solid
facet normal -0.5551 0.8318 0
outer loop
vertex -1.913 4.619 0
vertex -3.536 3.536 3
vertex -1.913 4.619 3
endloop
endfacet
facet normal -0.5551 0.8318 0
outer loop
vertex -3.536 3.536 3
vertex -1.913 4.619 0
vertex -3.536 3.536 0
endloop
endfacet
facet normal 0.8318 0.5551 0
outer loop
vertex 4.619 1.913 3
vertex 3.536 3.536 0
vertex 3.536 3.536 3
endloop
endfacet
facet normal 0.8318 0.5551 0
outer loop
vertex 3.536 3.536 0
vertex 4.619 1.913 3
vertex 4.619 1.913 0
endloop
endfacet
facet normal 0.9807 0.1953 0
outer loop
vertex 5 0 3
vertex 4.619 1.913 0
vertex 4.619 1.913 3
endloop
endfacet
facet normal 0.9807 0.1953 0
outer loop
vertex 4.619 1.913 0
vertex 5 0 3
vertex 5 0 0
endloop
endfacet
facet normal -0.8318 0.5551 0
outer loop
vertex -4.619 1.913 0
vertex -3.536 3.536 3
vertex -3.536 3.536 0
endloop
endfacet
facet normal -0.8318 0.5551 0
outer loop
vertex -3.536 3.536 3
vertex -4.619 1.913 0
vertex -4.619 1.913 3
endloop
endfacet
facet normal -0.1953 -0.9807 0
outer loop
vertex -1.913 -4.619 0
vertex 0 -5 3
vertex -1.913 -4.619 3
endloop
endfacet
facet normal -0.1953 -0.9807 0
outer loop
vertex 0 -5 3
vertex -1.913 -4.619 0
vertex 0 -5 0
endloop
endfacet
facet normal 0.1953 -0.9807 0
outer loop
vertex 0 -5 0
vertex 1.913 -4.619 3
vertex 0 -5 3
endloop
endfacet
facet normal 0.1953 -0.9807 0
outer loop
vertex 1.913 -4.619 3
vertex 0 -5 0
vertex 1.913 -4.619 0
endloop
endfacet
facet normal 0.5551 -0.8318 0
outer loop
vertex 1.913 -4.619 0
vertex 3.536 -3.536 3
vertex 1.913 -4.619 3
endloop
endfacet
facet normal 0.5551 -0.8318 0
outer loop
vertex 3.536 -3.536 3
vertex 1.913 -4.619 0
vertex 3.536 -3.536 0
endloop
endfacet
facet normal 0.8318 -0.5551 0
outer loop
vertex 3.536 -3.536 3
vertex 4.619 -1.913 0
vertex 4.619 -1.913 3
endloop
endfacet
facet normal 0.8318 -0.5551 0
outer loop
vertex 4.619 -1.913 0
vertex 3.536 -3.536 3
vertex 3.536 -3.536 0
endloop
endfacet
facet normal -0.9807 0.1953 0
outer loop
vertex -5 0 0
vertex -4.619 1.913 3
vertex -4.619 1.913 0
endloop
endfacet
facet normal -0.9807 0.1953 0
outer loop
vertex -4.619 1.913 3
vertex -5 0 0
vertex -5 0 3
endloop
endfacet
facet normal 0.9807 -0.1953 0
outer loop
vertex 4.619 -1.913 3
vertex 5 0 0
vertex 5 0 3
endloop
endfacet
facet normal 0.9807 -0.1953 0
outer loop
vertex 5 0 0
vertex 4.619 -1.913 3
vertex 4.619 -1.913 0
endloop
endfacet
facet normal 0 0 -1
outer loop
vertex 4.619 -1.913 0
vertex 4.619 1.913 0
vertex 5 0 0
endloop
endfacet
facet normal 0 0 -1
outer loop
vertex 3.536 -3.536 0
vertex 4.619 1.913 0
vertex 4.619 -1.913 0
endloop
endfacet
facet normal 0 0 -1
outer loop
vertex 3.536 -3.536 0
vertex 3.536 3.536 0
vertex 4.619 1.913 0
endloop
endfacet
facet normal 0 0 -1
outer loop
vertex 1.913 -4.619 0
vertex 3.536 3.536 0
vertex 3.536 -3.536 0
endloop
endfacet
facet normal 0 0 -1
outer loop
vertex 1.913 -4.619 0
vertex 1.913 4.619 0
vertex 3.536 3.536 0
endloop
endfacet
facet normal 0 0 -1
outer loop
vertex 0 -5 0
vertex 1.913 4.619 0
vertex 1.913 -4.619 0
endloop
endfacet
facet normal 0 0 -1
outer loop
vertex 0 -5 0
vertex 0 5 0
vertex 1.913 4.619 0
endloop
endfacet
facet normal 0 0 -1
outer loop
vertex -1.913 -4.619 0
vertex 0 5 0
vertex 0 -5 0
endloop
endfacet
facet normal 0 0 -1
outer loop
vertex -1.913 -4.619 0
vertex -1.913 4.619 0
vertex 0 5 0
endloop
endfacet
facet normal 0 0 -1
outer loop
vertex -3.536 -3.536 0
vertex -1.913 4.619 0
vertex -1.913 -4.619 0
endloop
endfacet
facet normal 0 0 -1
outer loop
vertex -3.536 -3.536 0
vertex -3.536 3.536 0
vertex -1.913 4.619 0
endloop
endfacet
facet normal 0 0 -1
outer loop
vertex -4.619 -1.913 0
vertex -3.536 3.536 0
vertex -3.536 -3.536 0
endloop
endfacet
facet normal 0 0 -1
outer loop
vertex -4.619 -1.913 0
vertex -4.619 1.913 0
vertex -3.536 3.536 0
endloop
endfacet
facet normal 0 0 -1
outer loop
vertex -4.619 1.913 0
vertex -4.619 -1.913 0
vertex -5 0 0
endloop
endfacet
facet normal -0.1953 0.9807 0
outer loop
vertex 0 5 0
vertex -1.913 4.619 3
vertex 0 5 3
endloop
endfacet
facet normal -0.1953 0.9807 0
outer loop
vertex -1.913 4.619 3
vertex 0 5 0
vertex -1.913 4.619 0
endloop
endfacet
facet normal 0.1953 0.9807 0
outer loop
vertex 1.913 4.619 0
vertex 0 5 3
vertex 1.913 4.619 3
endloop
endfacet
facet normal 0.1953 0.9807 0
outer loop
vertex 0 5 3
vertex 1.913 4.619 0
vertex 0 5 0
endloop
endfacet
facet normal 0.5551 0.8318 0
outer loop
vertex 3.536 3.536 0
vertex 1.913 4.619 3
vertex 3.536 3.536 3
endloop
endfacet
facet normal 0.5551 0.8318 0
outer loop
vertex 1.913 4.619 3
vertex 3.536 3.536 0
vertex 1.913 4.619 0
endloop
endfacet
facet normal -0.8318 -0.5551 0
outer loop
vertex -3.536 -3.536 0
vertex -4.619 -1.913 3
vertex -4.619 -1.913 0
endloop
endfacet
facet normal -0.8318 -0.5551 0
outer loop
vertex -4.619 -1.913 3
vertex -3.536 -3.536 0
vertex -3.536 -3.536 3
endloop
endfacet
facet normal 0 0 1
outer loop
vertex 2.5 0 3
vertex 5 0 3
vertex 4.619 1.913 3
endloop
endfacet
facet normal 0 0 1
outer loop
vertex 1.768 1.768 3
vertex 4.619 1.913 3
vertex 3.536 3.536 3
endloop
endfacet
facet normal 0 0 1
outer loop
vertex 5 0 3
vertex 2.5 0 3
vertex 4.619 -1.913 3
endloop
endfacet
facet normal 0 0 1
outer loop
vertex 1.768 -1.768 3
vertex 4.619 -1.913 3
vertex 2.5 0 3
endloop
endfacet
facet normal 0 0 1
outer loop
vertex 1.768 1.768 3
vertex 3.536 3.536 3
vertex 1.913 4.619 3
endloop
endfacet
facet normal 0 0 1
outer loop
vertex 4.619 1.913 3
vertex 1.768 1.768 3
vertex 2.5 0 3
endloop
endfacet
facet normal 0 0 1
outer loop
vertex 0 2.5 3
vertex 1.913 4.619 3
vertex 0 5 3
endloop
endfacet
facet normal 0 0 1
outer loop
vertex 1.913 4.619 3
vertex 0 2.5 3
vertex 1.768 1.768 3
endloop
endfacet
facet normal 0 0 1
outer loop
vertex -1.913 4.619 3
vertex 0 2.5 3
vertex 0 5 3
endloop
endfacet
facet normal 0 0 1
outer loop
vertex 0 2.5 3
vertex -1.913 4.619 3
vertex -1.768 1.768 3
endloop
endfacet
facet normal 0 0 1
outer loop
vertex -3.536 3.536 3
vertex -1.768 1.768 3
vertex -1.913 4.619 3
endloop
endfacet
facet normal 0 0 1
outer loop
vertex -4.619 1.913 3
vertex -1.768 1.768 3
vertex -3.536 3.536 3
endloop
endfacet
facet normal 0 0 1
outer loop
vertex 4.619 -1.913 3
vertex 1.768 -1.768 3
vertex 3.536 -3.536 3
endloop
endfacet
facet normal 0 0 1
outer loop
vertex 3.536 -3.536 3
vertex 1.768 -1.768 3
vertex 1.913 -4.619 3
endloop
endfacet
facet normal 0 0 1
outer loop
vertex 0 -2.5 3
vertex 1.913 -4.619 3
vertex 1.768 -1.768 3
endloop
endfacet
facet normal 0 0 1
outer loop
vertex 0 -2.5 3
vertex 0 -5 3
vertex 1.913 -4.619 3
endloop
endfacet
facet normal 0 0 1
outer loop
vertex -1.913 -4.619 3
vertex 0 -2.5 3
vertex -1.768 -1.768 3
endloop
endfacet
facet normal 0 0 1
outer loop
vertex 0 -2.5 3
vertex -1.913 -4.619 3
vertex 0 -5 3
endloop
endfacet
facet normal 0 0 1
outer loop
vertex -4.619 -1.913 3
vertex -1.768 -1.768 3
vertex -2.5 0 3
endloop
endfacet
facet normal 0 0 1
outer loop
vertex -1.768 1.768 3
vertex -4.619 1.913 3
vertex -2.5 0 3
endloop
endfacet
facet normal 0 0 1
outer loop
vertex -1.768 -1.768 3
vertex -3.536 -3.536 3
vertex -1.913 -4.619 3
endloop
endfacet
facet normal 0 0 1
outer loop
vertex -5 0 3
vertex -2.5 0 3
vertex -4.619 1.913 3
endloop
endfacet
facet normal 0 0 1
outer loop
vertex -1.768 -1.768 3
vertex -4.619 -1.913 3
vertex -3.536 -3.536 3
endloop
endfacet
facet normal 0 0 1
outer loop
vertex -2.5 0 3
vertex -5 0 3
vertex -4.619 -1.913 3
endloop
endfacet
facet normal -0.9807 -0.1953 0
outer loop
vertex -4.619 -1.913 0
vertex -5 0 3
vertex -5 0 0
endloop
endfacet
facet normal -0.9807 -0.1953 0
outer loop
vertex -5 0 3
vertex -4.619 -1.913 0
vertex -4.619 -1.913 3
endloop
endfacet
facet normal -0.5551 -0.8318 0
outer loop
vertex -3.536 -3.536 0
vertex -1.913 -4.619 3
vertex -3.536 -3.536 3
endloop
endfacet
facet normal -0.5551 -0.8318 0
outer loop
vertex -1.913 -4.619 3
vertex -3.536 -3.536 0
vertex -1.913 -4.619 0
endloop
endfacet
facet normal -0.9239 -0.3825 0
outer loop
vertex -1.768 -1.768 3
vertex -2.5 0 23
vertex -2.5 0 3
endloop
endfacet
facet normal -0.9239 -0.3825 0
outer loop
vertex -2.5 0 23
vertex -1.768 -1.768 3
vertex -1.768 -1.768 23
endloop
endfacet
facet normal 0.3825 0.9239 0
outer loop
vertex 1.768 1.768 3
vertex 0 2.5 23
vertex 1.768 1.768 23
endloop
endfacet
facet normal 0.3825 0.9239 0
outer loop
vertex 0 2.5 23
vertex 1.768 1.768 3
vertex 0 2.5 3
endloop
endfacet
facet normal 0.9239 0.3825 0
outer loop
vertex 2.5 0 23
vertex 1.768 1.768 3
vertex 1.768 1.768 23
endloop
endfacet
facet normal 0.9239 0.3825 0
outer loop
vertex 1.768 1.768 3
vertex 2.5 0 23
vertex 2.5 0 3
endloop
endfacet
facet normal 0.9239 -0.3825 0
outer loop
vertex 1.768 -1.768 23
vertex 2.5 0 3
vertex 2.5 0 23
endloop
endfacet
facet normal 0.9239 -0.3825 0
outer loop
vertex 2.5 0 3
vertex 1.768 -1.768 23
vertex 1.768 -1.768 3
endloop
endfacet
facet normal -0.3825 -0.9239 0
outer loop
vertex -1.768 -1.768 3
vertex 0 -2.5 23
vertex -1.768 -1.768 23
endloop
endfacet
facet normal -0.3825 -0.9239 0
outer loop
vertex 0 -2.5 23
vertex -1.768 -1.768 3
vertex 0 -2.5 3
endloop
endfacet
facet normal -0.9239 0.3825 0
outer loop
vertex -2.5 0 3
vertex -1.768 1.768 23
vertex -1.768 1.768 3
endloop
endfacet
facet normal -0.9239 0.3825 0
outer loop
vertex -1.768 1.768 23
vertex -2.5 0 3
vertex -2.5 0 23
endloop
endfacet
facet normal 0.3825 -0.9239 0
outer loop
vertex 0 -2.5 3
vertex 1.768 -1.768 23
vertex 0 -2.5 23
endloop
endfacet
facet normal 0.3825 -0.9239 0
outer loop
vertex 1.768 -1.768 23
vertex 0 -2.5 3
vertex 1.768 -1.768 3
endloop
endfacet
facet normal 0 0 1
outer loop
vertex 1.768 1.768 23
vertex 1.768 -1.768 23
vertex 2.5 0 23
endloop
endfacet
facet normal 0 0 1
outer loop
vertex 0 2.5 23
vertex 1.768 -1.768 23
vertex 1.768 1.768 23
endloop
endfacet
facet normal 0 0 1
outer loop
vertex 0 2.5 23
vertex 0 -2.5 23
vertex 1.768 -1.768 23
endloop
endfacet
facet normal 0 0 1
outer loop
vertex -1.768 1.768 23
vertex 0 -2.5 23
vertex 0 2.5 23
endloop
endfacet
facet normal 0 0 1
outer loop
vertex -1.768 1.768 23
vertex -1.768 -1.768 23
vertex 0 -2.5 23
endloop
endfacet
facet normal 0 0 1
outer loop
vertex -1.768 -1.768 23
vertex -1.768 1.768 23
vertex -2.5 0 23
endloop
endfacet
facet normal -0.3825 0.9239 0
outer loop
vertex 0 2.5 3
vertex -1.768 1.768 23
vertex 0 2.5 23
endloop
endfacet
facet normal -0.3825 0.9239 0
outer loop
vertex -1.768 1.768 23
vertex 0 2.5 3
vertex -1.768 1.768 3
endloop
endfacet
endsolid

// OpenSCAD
// Vertical post with base for maintaining yarn tension
// post_diameter: diameter of the upright post
// post_height: height of the post
// base_diameter: diameter of the base disk
// base_height: thickness of the base
module tension_post(post_diameter=5, post_height=20, base_diameter=10, base_height=3) {
    union() {
        // base disk
        cylinder(d=base_diameter, h=base_height);
        // vertical post
        translate([0, 0, base_height])
            cylinder(d=post_diameter, h=post_height);
    }
}

tension_post();
